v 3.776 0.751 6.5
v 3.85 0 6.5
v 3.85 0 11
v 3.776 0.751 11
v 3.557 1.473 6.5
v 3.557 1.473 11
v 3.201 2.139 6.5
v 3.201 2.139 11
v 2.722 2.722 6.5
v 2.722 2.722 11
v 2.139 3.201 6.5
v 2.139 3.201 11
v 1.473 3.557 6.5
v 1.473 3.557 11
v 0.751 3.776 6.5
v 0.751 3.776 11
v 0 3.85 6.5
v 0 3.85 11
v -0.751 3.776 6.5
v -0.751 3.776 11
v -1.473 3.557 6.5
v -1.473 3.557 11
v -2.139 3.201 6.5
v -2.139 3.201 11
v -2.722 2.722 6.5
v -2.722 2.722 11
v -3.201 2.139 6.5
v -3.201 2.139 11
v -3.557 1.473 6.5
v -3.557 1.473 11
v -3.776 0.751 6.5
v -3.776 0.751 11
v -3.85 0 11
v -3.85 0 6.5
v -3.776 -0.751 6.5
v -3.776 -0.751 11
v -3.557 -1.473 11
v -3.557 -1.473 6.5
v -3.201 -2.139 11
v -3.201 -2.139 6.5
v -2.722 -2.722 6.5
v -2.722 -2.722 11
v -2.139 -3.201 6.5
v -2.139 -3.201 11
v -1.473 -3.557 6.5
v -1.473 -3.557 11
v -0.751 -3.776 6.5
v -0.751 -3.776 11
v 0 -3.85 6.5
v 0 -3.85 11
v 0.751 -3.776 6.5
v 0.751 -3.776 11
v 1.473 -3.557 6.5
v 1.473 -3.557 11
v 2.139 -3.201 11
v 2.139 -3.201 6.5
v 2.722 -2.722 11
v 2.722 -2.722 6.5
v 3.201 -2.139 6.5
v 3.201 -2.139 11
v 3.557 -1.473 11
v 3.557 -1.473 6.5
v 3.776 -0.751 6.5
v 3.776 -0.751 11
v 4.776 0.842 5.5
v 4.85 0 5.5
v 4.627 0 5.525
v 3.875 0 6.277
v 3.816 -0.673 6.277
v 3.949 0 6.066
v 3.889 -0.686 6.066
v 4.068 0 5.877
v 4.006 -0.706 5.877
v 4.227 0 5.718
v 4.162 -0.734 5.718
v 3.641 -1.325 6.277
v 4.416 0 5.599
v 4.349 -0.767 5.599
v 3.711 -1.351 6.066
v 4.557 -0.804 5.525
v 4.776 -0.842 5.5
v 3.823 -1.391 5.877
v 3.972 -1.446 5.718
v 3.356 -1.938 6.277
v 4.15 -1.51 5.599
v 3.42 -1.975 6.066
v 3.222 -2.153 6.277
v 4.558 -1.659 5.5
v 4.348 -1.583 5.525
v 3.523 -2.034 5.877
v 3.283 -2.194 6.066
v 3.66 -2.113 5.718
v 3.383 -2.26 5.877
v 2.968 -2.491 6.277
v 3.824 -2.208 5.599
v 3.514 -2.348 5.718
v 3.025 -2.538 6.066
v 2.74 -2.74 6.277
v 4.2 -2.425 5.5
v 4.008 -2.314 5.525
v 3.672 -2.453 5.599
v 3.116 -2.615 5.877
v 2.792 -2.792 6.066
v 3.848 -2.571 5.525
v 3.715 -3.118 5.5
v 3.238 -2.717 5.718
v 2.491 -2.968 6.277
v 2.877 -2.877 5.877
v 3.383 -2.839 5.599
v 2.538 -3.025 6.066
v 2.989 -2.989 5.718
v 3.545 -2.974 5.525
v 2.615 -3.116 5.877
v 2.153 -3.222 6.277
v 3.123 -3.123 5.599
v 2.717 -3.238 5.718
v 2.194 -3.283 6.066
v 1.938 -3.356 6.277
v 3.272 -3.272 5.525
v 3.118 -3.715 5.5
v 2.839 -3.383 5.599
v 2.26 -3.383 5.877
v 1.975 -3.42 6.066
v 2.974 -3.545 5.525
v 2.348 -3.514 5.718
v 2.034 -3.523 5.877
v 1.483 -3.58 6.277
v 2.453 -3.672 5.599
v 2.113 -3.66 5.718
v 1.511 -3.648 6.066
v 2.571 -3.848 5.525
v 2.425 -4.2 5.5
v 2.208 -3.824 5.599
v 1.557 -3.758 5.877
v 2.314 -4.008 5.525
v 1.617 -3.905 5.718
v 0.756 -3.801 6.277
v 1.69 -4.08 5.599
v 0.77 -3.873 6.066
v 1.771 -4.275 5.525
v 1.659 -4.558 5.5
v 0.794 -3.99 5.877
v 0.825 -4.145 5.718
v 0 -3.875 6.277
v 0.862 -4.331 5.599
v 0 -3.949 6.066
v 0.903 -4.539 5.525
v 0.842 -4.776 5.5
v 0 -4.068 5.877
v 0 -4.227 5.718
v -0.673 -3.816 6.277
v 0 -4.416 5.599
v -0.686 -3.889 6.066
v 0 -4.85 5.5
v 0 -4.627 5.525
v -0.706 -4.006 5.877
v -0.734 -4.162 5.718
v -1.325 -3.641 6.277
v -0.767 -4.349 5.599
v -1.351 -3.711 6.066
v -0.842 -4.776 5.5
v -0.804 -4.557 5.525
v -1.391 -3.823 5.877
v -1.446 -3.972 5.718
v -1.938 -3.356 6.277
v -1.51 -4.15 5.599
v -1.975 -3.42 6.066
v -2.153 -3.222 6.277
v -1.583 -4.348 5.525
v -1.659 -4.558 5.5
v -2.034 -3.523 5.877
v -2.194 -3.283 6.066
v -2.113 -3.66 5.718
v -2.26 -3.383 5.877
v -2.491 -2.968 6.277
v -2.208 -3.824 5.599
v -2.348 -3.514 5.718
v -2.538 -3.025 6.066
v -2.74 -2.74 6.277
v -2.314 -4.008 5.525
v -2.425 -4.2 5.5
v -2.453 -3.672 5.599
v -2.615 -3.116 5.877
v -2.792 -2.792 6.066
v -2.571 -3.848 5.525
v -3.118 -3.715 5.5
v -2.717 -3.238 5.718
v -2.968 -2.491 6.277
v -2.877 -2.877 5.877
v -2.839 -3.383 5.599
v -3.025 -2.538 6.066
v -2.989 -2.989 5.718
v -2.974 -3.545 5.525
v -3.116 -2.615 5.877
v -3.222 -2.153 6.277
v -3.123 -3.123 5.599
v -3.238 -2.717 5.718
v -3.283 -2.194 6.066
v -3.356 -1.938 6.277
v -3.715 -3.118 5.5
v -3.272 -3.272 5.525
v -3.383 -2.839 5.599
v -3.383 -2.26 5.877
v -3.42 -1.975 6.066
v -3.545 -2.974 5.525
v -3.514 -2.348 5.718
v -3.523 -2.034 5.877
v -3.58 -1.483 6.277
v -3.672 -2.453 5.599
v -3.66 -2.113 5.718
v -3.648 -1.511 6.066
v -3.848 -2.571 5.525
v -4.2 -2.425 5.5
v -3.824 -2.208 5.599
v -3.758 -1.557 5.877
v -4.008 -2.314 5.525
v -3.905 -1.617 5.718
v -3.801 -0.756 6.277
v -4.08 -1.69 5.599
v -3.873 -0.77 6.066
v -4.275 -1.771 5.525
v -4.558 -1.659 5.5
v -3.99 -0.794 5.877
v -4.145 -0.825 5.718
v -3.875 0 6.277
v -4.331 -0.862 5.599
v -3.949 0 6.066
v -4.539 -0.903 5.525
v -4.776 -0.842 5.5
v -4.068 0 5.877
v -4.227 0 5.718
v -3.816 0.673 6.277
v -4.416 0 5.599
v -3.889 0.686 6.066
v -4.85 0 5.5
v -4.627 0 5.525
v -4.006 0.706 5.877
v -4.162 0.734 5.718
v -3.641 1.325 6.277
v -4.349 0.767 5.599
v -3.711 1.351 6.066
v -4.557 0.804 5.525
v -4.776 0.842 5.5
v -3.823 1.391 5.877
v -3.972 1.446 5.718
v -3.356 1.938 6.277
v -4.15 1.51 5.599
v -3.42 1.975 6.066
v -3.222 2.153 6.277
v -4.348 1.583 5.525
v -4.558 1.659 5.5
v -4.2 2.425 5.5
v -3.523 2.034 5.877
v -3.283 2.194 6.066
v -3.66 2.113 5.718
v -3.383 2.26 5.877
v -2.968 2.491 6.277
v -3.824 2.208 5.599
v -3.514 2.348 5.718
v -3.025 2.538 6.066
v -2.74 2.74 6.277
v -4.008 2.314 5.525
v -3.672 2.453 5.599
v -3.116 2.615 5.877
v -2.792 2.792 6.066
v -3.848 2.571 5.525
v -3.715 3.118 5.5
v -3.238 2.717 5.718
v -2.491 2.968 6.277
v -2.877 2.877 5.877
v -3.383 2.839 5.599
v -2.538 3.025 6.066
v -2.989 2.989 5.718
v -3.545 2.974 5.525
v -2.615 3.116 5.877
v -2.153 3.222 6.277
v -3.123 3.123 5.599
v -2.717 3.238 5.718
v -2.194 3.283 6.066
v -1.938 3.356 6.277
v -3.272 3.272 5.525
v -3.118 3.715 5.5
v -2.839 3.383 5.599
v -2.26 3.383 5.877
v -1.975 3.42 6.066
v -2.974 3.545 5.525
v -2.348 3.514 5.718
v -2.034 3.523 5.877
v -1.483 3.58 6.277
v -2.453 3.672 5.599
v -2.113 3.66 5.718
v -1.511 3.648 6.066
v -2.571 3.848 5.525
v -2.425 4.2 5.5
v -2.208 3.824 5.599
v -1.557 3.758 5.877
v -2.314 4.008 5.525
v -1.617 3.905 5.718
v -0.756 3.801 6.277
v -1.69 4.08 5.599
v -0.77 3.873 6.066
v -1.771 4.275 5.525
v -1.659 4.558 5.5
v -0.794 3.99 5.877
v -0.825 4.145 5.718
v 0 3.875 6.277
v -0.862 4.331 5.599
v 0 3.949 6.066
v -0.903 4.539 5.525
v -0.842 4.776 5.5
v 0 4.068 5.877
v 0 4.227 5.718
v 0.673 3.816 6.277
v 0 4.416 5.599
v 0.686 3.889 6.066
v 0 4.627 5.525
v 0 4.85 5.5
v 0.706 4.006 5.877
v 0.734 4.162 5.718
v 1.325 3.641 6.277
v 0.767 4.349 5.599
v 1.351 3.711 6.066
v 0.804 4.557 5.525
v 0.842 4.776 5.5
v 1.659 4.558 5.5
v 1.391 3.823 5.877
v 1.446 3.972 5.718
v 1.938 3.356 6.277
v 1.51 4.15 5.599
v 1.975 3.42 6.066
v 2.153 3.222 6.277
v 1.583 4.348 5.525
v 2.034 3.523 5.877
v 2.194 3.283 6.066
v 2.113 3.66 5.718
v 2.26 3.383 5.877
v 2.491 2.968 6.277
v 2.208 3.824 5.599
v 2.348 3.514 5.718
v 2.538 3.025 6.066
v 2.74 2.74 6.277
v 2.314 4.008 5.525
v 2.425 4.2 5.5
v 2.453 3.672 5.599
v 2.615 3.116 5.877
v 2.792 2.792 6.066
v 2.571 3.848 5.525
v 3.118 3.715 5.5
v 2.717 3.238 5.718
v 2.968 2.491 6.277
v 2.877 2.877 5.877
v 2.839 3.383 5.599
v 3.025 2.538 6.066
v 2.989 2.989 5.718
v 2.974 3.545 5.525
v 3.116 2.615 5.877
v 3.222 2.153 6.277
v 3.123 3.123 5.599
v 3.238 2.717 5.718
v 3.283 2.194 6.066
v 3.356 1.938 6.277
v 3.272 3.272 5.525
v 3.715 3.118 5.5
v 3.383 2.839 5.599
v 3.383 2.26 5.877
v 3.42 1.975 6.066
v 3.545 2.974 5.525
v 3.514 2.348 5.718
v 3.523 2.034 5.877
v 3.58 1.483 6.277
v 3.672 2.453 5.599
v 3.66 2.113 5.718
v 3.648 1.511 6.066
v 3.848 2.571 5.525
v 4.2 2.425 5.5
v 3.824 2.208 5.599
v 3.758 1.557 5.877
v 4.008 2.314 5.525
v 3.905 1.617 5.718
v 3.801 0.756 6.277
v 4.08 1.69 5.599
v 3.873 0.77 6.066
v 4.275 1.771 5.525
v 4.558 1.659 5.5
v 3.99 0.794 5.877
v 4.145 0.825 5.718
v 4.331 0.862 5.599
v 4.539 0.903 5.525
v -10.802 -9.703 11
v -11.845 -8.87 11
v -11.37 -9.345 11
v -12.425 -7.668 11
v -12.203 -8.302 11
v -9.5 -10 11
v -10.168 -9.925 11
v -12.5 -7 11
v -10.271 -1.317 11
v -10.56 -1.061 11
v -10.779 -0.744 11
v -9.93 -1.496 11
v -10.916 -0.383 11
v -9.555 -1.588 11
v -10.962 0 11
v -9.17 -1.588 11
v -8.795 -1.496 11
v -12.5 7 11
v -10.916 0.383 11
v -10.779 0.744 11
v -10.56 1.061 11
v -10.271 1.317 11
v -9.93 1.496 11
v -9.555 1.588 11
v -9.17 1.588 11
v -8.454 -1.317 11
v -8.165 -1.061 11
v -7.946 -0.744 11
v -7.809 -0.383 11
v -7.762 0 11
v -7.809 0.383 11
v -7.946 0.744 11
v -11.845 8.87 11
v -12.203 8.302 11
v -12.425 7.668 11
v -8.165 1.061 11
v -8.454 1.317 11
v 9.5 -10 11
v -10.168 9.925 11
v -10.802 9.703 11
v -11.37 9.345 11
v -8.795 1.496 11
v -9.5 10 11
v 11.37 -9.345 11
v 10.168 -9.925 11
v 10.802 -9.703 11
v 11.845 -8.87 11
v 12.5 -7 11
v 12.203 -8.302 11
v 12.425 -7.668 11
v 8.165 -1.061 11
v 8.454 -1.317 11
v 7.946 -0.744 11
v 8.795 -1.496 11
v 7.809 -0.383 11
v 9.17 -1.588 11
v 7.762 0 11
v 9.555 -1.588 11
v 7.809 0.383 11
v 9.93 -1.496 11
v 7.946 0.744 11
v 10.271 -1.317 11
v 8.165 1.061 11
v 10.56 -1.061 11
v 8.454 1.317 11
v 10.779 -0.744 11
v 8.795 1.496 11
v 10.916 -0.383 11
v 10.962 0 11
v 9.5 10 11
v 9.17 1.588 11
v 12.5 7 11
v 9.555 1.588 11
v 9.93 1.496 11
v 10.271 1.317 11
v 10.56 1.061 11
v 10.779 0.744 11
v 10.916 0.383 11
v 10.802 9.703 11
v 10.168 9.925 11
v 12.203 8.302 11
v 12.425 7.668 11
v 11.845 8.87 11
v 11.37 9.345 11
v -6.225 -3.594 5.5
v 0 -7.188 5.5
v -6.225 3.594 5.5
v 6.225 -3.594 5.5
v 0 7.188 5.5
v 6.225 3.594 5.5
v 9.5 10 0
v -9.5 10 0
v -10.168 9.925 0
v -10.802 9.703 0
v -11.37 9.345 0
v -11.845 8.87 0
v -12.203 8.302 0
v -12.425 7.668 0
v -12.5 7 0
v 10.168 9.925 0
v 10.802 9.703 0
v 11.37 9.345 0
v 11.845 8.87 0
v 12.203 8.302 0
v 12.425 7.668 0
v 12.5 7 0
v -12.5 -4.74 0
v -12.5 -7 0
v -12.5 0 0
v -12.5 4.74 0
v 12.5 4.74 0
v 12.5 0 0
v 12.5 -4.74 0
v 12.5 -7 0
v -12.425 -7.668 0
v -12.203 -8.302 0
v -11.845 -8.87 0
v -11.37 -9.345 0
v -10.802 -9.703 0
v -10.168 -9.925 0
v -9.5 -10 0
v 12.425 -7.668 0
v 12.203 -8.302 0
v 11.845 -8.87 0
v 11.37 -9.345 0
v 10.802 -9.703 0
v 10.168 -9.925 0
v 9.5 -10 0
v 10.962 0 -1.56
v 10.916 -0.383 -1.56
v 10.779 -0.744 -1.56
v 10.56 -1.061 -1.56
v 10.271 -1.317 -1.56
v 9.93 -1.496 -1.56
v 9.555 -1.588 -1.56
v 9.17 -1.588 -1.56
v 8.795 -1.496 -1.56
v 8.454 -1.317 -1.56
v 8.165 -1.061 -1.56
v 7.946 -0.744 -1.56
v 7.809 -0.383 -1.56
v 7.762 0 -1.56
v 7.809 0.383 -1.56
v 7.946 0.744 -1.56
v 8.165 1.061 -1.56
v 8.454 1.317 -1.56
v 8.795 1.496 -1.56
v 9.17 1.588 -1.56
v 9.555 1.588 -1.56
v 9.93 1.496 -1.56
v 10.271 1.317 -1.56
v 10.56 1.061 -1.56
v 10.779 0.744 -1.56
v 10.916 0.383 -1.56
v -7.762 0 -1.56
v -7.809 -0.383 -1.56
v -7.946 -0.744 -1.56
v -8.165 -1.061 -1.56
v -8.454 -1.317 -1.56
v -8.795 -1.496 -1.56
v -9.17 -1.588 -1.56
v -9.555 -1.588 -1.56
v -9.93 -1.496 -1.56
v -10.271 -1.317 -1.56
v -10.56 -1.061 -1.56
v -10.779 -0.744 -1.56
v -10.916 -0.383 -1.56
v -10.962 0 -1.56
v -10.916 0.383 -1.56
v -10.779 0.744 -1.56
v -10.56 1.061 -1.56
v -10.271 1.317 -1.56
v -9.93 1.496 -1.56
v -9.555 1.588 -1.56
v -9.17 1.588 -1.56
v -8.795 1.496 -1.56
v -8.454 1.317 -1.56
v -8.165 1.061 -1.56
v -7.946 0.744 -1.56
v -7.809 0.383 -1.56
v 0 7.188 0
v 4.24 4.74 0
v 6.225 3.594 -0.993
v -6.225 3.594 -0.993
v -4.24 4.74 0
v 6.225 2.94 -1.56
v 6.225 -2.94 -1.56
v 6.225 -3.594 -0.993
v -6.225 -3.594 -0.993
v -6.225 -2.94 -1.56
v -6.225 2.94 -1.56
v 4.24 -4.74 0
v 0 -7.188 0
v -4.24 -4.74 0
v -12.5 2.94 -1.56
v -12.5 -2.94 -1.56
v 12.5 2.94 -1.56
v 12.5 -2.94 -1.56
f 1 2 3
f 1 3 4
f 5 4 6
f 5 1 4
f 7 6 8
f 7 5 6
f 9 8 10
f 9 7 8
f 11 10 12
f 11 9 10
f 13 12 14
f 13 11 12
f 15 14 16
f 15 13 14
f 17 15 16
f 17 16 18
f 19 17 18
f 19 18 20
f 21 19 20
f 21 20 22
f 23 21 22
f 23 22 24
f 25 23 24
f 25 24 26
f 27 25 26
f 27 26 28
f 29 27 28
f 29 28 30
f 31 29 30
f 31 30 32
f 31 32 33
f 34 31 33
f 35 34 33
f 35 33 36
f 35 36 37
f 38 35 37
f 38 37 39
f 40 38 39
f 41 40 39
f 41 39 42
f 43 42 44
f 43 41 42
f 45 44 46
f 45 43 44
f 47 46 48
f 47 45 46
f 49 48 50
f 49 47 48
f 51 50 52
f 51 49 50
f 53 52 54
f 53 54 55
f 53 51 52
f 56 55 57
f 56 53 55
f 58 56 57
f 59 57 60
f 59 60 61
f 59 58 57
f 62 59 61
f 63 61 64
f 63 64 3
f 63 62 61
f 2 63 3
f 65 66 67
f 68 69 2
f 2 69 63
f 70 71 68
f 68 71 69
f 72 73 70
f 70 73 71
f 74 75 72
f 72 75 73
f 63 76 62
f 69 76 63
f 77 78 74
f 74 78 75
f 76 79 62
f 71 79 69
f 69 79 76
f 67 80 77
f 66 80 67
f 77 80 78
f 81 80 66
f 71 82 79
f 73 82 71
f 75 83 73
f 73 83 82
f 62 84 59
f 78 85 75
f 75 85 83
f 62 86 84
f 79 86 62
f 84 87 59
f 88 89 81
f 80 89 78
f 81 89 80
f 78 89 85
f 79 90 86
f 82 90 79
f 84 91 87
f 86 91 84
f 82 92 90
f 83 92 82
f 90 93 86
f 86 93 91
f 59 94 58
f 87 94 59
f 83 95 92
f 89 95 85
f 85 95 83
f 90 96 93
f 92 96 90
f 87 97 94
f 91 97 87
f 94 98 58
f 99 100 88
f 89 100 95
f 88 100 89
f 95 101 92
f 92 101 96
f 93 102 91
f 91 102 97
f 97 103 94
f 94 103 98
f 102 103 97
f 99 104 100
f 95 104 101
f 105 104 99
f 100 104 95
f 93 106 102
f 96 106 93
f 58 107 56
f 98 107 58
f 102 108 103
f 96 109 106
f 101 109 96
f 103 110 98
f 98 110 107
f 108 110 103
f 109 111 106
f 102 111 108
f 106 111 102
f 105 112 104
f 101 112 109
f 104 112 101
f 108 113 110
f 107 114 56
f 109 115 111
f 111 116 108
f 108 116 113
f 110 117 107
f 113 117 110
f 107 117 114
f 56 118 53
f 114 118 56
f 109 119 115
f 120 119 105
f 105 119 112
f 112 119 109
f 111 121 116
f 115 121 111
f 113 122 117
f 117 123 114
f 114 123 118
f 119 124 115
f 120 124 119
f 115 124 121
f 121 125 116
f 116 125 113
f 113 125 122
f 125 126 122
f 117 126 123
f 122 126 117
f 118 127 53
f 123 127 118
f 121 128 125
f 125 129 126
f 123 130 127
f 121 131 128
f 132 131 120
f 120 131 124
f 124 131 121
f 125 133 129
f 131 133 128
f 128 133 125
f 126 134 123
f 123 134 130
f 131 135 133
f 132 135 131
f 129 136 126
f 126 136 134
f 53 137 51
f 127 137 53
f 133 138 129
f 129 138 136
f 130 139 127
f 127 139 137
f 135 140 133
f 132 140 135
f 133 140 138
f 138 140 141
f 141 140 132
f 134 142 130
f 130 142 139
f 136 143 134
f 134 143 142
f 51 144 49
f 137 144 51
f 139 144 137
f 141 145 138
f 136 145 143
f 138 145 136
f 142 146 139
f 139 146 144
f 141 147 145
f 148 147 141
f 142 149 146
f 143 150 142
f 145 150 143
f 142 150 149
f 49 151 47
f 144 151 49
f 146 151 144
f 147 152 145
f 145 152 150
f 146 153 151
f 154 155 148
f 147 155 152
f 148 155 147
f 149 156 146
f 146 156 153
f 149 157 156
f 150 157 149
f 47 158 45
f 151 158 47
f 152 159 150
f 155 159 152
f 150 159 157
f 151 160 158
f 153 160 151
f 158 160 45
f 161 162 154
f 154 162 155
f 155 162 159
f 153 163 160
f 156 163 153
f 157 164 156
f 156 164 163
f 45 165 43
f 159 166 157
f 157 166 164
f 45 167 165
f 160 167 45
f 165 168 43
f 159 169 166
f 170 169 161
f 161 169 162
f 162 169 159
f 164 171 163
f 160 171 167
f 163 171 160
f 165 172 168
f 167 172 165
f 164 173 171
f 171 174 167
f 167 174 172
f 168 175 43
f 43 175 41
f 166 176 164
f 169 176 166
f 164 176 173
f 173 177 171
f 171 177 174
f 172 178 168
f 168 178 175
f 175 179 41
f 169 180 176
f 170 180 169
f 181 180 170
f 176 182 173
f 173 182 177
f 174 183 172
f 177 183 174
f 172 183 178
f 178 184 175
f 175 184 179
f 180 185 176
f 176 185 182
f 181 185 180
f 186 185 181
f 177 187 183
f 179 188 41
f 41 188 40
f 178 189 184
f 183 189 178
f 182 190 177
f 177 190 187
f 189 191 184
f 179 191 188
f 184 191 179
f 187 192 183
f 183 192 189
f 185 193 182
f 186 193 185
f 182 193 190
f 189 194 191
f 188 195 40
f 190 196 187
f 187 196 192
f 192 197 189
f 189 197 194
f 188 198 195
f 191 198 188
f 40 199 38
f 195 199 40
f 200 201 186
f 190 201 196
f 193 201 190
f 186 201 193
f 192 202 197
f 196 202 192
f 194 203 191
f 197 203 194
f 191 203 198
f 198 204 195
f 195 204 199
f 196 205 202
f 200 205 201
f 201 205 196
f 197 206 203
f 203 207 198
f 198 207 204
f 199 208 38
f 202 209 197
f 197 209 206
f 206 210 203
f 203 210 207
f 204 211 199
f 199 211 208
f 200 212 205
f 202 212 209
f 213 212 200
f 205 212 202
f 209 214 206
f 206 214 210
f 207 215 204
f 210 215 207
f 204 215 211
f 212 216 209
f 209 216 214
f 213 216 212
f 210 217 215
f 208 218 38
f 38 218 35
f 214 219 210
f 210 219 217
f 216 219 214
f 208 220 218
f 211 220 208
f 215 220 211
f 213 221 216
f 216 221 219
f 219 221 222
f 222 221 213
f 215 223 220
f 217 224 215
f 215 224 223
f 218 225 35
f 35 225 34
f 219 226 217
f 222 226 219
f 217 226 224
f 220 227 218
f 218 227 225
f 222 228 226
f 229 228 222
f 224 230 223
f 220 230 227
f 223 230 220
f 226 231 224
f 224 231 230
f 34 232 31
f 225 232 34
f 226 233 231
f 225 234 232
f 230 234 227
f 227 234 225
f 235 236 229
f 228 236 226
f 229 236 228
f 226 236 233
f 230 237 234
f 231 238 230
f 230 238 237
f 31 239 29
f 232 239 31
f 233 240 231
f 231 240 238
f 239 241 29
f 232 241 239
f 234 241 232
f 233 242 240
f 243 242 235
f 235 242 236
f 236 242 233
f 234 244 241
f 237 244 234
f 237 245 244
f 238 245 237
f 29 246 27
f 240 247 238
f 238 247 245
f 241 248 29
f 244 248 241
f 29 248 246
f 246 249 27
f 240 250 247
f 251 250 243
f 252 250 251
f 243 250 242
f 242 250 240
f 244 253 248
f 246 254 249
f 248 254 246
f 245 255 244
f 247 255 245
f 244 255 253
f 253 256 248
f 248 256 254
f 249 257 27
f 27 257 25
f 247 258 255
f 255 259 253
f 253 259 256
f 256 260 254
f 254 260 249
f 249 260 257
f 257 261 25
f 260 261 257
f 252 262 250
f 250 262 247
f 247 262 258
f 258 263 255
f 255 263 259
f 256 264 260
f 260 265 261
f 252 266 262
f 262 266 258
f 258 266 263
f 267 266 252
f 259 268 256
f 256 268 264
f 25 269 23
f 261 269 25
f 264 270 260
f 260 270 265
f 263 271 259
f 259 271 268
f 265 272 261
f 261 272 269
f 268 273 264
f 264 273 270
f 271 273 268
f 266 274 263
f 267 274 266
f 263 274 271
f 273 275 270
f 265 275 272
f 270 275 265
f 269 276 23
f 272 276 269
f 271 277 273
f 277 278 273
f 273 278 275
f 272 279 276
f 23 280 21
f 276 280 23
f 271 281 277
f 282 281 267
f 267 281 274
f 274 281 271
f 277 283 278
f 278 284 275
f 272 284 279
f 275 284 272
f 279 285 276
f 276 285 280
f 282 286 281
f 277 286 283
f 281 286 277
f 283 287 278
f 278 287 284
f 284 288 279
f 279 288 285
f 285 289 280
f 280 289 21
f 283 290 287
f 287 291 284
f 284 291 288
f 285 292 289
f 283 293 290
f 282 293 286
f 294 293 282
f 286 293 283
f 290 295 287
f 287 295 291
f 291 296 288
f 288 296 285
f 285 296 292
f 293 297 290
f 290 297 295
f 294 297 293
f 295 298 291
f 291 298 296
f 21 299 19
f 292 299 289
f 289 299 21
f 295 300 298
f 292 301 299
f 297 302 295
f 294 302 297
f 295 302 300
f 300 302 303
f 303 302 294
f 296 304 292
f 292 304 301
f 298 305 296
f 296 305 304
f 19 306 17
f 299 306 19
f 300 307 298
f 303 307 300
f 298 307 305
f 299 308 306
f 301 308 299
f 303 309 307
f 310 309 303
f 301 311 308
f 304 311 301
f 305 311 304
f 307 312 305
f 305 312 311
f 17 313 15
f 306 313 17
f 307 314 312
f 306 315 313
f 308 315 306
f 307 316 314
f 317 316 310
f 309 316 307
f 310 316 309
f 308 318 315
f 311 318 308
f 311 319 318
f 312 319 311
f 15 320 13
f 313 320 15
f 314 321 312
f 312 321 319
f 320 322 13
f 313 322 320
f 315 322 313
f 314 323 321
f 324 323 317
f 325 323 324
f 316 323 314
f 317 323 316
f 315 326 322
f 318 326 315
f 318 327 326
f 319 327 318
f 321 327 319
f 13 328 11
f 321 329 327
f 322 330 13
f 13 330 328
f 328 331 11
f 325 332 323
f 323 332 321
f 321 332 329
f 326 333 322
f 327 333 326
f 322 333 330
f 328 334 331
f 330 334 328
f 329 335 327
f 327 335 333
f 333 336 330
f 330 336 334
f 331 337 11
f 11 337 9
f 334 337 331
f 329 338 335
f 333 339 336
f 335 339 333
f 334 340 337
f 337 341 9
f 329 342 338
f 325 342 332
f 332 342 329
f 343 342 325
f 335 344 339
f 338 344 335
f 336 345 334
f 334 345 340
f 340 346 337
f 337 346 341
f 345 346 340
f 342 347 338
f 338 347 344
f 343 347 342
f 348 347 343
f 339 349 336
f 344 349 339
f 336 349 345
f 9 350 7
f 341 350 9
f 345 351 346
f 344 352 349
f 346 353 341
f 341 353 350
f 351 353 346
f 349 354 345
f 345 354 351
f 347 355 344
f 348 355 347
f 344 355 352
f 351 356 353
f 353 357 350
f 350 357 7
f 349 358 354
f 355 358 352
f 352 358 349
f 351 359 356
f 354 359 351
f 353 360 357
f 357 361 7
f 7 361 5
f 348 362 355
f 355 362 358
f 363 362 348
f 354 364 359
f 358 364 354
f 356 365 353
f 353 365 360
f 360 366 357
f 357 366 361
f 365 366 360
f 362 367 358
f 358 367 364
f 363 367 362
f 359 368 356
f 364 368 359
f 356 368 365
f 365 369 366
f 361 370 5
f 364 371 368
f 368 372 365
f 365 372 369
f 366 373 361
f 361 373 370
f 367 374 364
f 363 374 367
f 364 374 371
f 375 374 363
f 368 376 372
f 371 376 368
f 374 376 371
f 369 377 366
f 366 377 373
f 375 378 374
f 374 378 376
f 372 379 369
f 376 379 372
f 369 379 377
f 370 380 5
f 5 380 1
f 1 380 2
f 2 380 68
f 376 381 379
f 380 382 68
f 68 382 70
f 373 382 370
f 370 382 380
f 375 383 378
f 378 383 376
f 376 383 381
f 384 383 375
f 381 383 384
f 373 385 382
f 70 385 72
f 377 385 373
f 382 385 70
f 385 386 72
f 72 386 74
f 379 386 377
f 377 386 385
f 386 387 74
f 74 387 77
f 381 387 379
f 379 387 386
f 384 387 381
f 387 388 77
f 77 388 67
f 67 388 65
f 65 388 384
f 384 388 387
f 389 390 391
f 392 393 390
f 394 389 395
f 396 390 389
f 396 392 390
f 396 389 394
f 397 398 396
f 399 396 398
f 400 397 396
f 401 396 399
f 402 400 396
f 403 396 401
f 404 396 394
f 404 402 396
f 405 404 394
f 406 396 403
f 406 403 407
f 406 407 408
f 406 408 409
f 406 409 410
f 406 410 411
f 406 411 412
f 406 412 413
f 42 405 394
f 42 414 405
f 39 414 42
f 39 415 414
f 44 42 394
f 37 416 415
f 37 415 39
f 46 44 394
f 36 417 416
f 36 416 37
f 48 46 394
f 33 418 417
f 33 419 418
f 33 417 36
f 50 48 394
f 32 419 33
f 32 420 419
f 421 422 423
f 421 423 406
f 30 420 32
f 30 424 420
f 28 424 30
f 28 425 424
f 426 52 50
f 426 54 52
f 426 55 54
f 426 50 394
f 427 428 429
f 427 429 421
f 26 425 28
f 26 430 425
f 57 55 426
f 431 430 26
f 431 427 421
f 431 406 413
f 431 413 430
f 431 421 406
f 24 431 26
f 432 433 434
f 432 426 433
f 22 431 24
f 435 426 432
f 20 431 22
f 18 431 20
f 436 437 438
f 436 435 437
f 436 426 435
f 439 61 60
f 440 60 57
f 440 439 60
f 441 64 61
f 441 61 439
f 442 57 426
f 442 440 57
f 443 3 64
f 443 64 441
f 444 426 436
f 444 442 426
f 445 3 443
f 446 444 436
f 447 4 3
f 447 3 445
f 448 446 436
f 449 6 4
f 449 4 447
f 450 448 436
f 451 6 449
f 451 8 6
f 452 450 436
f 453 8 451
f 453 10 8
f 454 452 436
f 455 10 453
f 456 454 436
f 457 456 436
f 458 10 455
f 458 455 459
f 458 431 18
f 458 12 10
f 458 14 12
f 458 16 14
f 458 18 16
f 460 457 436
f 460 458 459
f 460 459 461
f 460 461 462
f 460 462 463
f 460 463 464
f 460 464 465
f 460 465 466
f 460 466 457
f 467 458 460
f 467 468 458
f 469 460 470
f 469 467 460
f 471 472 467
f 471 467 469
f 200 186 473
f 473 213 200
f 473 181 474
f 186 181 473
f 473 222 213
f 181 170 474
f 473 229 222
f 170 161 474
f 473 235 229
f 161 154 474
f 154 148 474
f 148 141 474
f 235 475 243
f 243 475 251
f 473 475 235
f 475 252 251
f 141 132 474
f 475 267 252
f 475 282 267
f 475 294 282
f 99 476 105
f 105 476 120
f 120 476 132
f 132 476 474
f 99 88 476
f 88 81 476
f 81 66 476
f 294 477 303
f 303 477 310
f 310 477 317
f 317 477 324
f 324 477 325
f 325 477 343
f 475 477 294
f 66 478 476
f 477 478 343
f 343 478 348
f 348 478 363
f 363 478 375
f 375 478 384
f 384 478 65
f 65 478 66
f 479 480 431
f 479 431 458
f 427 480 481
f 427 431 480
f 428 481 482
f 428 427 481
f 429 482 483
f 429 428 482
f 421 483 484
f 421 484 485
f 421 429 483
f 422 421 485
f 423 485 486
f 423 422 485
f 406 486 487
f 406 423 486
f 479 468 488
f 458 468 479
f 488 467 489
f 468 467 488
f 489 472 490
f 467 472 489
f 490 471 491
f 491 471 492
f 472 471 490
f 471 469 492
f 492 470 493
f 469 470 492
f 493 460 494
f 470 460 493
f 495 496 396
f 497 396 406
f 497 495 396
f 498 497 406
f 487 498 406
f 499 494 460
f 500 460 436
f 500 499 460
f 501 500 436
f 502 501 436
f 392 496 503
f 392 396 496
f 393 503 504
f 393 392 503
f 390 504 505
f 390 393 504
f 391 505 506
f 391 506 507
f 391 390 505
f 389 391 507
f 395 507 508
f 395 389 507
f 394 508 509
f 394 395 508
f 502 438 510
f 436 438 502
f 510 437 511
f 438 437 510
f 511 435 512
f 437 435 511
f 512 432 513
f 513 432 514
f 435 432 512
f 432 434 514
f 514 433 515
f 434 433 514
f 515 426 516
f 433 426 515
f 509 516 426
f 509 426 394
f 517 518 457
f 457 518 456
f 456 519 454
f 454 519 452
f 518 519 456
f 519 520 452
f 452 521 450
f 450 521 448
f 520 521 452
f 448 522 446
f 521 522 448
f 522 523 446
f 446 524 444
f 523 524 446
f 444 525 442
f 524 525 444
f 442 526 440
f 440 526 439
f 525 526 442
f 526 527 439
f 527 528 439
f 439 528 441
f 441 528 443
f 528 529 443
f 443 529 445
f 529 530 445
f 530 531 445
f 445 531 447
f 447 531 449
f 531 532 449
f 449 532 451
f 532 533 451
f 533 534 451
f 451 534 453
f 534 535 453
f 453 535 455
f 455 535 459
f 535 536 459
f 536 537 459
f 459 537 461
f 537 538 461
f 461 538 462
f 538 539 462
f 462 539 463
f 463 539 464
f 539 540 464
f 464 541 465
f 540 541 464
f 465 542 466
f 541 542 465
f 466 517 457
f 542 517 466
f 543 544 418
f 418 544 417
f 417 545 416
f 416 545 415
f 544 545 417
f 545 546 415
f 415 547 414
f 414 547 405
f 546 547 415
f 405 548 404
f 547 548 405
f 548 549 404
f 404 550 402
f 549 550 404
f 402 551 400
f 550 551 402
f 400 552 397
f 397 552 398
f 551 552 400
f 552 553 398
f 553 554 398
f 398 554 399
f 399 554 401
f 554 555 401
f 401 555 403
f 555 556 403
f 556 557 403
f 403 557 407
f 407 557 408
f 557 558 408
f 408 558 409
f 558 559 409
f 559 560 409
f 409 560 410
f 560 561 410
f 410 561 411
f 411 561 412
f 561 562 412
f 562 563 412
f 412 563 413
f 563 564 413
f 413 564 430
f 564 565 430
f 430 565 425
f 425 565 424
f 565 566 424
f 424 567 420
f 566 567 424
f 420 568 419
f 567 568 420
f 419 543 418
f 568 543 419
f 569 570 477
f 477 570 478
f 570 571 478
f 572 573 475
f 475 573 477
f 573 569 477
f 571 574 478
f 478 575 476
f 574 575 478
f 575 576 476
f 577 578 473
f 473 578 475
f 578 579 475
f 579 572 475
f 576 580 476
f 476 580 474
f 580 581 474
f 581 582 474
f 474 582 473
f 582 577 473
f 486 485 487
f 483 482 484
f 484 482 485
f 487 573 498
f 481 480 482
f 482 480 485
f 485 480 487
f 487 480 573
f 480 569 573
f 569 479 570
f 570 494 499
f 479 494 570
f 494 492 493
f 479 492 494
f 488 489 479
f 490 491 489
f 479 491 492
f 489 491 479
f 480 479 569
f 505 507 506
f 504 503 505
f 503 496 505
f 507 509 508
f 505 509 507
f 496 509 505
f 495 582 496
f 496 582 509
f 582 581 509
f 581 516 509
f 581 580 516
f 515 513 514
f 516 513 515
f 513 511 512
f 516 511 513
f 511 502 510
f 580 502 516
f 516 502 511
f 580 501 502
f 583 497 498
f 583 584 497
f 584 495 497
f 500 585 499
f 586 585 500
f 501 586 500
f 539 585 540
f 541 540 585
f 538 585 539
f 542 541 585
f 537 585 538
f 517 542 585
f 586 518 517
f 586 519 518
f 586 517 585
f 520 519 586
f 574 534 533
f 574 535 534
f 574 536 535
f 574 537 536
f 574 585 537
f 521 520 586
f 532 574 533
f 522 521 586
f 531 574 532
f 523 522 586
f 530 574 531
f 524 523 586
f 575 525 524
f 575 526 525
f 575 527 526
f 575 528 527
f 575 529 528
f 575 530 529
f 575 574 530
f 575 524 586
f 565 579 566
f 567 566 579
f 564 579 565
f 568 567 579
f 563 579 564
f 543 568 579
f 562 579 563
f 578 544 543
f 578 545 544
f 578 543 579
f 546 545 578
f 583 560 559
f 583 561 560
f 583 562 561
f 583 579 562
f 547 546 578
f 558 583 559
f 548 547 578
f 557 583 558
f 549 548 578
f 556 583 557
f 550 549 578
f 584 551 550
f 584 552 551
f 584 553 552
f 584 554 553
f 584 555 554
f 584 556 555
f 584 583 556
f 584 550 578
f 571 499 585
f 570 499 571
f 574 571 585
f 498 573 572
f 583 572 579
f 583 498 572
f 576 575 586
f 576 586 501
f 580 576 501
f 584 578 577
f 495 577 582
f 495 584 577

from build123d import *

# Parameters (mm, degrees)
SKETCH_W        = 25
SKETCH_H        = 20
SKETCH_R        = 3.85
PAD_DEPTH       = 11
PAD001_DEPTH    = 25
POCKET_DEPTH    = 7.06
SKETCH003_R     = 1.6
POCKET001_DEPTH = 12.561
FILLET_R        = 3
FILLET001_R     = 1


with BuildPart() as part:
    # Sketch → Pad (new body)
    with BuildSketch(Plane.XY):
        Rectangle(SKETCH_W, SKETCH_H)
        Circle(SKETCH_R, mode=Mode.SUBTRACT)
    extrude(amount=PAD_DEPTH)

    # Sketch001 (on Face4 of Pad) → Pad001 (join)
    with BuildSketch(Plane(origin=(-12.5, 0, 0), x_dir=(0, -1, 0), z_dir=(-1, 0, 0))):
        Polygon((0, 0), (-4.74, 0), (-2.94, -1.56), (2.94, -1.56), (4.74, 0), align=None)
    extrude(amount=-PAD001_DEPTH)

    # Sketch002 (on Face13 of Pad001) → Pocket (cut)
    with BuildSketch(Plane(origin=(0, 0, -1.56), x_dir=(1, 0, 0), z_dir=(0, 0, -1))):
        Polygon((0, -7.188011), (6.225, -3.594005), (6.225, 3.594005), (0, 7.188011), (-6.225, 3.594005), (-6.225, -3.594005), align=None)
    extrude(amount=-POCKET_DEPTH, mode=Mode.SUBTRACT)

    # Sketch003 (on Face19 of Pocket) → Pocket001 (cut, through all)
    with BuildSketch(Plane(origin=(0, 0, -1.56), x_dir=(1, 0, 0), z_dir=(0, 0, -1))):
        with Locations((-9.3625, 0)):
            Circle(SKETCH003_R)
        with Locations((9.3625, 0)):
            Circle(SKETCH003_R)
    extrude(amount=-POCKET001_DEPTH, mode=Mode.SUBTRACT)

    # Fillet
    fillet_edges = [part.edges().sort_by_distance(p)[0] for p in [
        (12.5, -10, 5.5),
        (12.5, 10, 5.5),
        (-12.5, 10, 5.5),
        (-12.5, -10, 5.5),
    ]]
    fillet(fillet_edges, radius=FILLET_R)

    # Fillet001
    fillet001_edges = [part.edges().sort_by_distance(p)[0] for p in [
        (-3.85, 0, 5.5),
    ]]
    fillet(fillet001_edges, radius=FILLET001_R)


solid = part.part
